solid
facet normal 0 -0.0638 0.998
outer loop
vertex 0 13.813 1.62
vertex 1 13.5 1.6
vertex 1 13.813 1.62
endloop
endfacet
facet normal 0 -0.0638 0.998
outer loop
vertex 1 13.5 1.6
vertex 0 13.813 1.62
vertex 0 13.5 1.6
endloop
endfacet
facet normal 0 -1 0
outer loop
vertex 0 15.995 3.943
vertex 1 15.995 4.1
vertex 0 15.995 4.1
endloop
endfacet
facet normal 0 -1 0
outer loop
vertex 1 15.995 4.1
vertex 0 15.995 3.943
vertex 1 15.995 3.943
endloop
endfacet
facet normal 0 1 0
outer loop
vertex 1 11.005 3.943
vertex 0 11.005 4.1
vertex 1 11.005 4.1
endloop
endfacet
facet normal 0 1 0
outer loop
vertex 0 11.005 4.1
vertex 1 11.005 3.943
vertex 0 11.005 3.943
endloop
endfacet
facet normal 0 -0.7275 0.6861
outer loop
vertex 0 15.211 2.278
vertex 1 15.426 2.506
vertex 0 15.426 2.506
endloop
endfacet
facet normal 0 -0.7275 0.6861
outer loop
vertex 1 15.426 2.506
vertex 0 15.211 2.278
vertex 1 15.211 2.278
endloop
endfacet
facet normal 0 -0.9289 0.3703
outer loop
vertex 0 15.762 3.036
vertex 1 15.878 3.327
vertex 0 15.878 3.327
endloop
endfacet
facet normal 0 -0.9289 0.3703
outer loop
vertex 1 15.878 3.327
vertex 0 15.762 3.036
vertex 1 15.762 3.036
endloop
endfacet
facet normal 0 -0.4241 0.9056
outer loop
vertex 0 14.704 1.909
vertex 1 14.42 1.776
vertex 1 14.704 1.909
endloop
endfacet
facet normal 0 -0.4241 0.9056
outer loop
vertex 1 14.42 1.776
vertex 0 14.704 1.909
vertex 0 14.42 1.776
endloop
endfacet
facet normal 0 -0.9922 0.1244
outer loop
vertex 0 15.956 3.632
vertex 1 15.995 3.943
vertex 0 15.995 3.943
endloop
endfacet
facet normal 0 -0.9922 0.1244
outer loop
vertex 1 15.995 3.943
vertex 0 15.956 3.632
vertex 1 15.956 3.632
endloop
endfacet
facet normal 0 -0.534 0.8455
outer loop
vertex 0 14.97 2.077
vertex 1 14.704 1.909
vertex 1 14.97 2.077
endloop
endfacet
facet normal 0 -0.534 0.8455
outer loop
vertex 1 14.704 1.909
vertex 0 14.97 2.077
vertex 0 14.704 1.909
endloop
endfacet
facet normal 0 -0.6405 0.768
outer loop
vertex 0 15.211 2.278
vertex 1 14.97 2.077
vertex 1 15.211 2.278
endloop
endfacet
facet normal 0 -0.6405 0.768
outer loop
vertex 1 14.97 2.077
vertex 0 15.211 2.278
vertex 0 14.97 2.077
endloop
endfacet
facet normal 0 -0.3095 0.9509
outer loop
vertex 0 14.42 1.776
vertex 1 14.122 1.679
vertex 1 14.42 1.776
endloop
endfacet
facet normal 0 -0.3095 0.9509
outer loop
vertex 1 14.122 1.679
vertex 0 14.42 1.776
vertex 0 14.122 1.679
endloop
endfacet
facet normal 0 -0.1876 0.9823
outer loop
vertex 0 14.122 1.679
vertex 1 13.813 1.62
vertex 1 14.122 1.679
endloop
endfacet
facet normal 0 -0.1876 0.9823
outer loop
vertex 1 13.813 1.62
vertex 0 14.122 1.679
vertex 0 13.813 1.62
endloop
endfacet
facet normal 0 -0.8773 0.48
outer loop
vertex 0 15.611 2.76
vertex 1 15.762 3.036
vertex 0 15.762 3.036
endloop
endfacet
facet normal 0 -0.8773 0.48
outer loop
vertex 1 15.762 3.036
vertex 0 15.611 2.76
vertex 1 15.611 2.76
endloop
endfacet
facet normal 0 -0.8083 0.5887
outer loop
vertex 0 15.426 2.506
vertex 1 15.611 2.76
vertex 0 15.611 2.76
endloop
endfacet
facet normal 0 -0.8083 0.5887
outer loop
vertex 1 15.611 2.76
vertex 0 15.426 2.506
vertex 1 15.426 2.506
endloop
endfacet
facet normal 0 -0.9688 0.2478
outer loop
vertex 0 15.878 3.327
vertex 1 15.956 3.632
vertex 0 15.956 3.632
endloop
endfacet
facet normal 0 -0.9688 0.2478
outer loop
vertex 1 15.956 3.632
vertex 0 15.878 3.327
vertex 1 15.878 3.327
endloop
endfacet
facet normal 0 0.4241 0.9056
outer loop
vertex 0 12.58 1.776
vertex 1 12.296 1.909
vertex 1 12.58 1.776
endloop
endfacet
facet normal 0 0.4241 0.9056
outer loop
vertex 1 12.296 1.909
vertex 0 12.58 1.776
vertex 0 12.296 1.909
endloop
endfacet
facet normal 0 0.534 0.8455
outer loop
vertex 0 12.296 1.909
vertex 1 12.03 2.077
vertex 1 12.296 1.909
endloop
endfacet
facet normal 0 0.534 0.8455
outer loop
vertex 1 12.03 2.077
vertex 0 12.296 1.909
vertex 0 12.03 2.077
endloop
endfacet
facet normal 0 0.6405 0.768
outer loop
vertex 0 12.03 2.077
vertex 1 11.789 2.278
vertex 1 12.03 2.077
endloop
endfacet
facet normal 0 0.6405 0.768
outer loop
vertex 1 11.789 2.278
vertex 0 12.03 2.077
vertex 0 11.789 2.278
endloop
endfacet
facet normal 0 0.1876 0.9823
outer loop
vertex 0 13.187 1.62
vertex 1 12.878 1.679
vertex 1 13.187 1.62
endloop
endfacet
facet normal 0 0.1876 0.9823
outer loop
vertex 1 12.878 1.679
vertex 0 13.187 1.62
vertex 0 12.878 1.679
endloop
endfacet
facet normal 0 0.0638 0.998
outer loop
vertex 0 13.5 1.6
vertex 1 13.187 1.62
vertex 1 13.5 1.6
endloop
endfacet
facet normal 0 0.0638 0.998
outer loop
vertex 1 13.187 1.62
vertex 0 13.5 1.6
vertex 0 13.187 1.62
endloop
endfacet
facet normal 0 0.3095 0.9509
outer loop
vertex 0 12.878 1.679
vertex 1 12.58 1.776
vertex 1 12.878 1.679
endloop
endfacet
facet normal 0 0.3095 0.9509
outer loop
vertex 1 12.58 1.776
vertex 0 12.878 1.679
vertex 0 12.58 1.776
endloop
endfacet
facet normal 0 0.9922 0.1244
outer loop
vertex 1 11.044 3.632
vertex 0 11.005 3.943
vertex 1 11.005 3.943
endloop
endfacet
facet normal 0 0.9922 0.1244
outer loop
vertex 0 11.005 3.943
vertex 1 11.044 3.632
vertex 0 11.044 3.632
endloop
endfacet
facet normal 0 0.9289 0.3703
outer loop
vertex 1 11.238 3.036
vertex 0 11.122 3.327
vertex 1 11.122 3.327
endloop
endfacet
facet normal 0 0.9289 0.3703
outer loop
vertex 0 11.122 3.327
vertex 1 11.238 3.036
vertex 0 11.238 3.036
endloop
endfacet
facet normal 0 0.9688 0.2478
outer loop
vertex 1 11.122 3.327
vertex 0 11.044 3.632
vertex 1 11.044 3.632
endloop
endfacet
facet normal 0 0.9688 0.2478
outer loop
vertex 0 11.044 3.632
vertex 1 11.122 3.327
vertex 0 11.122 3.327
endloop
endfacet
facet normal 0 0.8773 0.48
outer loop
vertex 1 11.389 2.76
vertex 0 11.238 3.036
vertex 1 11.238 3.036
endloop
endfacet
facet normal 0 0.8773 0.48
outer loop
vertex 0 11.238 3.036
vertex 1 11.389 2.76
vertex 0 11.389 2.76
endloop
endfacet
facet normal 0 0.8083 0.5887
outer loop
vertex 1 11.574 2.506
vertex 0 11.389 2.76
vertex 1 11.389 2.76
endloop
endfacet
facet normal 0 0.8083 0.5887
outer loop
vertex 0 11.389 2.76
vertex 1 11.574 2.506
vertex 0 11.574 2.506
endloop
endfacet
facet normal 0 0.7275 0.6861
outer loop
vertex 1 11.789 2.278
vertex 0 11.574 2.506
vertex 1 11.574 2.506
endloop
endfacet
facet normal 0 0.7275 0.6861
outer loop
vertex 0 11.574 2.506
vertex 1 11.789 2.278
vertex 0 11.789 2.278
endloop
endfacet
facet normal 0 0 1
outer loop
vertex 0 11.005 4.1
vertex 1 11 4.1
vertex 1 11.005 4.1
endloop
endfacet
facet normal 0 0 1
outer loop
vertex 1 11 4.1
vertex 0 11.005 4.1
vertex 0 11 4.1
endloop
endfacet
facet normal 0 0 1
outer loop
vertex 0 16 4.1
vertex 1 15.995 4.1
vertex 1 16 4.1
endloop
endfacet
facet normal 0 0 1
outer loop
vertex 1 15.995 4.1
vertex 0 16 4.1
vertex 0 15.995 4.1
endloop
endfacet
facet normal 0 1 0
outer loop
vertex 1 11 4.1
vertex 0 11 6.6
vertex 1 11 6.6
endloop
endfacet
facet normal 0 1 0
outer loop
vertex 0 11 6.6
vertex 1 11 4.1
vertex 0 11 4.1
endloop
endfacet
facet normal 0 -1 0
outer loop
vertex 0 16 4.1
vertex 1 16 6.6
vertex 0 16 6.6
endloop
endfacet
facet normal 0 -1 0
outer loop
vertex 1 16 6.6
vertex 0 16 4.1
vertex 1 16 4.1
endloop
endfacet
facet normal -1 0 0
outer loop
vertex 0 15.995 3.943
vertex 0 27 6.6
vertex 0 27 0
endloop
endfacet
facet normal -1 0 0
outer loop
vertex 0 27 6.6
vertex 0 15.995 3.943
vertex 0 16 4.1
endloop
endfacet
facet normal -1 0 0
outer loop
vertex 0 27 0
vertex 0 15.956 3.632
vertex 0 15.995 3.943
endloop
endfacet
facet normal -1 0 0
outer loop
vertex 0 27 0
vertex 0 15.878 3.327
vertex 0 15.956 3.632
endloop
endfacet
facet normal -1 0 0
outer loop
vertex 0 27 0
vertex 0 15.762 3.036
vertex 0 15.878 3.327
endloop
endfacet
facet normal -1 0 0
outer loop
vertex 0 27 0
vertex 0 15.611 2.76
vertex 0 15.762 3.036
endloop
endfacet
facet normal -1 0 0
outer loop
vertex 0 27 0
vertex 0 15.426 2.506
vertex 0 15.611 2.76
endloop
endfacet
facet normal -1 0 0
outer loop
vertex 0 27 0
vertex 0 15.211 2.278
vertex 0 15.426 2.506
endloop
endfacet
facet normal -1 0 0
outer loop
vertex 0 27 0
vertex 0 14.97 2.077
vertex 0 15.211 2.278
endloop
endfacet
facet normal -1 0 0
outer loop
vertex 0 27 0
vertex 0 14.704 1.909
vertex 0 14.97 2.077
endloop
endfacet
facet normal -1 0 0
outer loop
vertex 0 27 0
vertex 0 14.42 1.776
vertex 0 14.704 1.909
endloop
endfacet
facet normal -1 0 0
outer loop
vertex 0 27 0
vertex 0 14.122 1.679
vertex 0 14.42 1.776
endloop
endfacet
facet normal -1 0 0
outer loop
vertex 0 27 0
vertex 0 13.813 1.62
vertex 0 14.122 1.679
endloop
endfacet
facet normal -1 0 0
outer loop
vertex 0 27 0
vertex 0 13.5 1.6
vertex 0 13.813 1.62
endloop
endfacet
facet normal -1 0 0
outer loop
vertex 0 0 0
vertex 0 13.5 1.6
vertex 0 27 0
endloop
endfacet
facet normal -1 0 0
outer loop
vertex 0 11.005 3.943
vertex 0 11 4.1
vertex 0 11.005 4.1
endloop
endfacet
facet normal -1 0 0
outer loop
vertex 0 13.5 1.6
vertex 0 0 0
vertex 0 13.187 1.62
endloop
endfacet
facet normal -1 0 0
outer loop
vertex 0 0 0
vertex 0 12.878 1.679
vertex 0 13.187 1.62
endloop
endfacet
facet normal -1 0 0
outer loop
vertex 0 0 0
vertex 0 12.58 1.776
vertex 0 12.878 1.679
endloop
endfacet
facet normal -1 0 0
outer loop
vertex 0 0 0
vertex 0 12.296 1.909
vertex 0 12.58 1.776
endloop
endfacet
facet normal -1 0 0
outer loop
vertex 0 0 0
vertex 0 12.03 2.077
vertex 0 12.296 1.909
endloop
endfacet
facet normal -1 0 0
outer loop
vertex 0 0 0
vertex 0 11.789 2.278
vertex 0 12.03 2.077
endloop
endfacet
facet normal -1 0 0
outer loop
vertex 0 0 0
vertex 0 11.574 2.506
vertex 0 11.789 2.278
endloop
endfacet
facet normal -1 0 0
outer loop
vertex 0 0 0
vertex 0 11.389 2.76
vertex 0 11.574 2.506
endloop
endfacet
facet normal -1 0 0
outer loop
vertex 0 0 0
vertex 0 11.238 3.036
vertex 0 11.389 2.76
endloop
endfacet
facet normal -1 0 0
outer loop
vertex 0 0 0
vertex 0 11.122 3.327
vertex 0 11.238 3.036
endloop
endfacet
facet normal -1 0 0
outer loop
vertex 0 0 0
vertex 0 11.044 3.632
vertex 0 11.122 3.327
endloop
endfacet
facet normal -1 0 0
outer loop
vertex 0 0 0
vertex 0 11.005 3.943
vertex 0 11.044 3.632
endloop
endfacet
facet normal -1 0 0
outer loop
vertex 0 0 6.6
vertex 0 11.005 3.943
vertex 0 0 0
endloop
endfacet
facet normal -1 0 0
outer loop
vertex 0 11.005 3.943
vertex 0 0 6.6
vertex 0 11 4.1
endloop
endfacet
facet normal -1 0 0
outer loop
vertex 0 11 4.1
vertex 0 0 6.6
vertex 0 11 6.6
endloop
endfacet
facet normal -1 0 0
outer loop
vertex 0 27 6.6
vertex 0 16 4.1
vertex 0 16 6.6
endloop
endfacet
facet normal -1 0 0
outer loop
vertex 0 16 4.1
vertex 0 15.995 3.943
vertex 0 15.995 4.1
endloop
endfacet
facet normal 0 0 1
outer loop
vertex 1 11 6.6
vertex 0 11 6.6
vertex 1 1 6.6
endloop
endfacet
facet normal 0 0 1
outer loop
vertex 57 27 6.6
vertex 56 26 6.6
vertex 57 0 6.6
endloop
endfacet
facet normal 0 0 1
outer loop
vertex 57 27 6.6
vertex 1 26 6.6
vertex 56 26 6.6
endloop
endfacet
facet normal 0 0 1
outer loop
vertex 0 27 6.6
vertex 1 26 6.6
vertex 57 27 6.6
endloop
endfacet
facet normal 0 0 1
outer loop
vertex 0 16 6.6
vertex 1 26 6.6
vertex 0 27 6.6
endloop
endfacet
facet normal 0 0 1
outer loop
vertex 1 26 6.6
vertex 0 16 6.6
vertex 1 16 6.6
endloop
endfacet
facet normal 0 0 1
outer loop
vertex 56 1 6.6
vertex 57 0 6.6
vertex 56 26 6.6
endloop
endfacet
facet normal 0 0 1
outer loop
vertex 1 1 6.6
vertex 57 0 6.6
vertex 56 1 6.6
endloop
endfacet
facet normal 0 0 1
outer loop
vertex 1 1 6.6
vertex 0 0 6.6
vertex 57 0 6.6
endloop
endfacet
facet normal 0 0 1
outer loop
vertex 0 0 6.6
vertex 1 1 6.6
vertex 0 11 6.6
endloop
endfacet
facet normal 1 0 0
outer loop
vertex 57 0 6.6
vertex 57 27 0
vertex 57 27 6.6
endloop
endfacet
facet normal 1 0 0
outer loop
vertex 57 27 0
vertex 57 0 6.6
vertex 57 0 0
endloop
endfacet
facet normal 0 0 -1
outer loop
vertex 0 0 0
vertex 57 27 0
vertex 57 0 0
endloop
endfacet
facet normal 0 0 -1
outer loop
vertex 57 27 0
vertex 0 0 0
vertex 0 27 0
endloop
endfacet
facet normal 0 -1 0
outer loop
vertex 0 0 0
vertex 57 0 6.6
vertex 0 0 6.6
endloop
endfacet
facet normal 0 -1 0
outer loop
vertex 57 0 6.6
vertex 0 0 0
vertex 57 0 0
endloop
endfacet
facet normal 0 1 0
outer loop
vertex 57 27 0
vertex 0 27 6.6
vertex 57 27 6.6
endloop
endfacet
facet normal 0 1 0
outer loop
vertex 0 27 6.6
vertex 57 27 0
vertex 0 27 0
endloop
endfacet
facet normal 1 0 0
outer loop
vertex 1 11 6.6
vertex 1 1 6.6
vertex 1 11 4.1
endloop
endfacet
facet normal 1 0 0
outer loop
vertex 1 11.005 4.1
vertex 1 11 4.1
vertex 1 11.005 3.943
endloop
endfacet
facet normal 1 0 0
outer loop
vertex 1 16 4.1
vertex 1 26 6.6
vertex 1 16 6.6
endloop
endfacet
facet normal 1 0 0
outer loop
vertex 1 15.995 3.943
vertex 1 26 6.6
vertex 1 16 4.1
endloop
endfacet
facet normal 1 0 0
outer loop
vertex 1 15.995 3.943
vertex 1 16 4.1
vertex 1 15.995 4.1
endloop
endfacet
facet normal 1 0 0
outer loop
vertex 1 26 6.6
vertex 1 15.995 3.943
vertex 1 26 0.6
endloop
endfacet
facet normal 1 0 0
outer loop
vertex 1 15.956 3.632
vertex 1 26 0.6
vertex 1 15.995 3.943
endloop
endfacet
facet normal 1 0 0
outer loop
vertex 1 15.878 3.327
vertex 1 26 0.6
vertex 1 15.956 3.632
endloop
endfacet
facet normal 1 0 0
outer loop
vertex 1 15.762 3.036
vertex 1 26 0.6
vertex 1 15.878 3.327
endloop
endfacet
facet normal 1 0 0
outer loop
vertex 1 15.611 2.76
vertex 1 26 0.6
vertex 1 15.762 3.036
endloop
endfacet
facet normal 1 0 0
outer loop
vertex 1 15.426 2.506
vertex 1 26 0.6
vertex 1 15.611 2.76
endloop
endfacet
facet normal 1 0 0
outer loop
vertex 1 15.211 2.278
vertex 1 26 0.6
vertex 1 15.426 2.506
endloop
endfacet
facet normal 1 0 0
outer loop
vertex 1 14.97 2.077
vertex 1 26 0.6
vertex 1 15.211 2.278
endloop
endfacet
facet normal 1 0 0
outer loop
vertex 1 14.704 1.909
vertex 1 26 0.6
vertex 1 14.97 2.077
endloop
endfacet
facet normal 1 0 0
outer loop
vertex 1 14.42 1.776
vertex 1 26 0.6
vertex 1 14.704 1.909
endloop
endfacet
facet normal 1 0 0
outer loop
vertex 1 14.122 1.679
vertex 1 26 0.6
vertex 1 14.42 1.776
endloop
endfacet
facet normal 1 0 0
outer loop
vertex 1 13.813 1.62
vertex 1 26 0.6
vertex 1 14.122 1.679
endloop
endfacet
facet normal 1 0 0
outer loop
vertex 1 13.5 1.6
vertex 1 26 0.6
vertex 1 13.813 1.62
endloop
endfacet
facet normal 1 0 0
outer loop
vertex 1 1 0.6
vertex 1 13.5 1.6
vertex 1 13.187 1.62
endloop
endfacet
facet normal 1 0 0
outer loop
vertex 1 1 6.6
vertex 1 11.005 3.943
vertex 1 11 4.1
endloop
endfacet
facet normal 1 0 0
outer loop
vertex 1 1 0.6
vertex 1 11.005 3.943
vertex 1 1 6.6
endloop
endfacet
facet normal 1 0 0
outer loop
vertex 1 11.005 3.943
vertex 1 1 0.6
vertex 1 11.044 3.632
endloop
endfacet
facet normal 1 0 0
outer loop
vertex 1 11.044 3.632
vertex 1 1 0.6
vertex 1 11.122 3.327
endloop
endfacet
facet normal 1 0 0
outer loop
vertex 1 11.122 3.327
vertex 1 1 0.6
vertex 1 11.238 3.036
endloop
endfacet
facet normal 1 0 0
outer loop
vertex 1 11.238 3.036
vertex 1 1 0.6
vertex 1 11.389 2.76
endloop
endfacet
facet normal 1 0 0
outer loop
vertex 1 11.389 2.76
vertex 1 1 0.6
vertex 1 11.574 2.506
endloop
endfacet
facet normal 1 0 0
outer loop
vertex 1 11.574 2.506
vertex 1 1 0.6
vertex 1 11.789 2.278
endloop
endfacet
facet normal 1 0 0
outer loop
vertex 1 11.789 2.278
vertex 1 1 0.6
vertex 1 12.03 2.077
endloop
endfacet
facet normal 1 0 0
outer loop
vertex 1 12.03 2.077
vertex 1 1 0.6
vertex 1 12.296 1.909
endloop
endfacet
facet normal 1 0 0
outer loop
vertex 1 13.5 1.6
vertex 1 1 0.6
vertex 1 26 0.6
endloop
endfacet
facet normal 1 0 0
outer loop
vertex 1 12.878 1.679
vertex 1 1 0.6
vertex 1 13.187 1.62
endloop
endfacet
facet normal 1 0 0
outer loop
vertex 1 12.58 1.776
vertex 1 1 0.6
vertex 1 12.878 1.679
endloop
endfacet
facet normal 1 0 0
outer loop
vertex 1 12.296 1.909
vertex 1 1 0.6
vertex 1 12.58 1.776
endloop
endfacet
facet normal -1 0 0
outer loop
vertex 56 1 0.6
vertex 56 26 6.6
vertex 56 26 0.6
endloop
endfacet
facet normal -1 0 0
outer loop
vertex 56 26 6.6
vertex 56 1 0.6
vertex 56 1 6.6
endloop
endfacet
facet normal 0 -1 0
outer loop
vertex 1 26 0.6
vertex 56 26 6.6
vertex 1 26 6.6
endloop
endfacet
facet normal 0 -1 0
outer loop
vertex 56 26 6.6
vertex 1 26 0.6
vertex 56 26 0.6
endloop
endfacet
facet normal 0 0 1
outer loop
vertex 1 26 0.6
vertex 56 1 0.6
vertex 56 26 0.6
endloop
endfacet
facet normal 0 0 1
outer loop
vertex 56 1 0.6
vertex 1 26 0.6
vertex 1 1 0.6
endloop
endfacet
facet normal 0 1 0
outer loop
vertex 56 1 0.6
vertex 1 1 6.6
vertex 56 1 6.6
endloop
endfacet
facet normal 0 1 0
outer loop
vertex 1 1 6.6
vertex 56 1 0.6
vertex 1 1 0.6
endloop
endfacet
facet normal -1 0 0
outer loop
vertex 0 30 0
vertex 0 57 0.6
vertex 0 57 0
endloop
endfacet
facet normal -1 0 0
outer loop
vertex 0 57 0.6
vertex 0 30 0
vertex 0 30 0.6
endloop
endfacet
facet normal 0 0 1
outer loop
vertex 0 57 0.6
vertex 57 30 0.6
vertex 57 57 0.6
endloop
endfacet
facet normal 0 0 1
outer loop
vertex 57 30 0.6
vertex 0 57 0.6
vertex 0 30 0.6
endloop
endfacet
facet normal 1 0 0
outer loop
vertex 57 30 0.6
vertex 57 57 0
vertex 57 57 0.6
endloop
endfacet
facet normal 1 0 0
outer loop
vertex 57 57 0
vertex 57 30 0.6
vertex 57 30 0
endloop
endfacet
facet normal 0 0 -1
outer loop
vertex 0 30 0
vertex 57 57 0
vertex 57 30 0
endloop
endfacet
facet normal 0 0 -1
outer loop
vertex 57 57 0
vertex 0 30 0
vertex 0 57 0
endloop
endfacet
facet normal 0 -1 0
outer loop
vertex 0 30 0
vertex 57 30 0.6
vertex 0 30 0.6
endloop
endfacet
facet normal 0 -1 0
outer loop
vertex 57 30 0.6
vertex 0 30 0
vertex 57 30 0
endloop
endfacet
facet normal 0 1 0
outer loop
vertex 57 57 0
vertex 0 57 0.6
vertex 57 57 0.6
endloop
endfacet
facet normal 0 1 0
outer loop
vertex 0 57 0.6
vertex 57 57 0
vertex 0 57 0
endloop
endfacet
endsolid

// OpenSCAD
// Simple box to put the Light Controller MK4 inside.

$fn = 50;
eps = 0.05;
eps2 = 2 * eps;
epsz = [0, 0, -eps];

dim_inside = [55, 25, 6];
wall_t = 1;
bottom_t = 0.6;
top_t = 0.6;
hole_d = 5;

dim_outside = dim_inside + [2*wall_t, 2*wall_t, bottom_t];
dim_lid = [dim_outside.x, dim_outside.y, top_t];

difference() {
    cube(dim_outside);
    translate([wall_t, wall_t, bottom_t])
        cube(dim_inside + [0, 0, eps2]);
    translate([wall_t+eps, dim_outside.y/2, dim_outside.z-hole_d/2]) rotate([0, -90, 0])  {
        cylinder(d=hole_d, h=wall_t+eps2);
        translate([0, -hole_d/2, 0])  cube([hole_d/2+eps, hole_d, wall_t+eps2]);
    }
}

translate([0, dim_outside.y+3, 0])
cube(dim_lid);
